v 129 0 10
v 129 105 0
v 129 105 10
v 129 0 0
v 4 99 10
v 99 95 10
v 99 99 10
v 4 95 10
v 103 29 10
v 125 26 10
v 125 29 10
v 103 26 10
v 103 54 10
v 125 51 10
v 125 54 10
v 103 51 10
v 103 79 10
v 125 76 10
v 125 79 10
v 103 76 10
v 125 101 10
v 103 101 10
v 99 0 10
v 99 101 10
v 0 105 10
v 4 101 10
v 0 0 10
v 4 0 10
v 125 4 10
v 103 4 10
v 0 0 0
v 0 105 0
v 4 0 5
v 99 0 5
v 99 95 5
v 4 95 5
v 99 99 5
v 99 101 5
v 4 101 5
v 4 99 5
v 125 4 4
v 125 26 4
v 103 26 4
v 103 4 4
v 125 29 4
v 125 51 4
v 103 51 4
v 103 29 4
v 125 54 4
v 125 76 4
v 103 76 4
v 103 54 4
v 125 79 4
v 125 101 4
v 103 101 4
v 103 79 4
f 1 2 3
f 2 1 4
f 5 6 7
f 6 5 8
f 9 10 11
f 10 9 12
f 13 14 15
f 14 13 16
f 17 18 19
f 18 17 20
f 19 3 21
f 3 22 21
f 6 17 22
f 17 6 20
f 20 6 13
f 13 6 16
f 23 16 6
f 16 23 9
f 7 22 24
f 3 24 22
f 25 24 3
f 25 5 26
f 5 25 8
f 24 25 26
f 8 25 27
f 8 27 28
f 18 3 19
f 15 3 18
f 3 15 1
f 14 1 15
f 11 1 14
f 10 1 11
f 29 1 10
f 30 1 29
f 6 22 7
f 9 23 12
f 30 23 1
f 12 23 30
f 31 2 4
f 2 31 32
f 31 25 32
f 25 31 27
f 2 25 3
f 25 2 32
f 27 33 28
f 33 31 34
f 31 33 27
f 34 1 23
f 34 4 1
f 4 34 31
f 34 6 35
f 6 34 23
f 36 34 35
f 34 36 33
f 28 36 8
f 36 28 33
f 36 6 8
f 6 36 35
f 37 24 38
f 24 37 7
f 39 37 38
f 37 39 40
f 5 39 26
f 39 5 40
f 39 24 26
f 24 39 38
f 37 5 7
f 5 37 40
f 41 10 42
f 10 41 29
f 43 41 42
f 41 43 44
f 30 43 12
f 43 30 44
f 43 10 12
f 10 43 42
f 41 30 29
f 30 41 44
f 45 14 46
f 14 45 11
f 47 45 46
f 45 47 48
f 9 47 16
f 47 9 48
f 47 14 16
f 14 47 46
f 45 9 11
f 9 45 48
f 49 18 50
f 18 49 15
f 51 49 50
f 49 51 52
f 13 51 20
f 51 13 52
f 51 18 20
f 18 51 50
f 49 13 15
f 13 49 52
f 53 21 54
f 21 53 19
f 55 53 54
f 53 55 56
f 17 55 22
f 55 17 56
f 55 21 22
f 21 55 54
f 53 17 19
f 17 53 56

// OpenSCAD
module base(sx, sy, sz) {
    cube(size=[sx,sy,sz], center=false);
}

module recess(px, py, pz, sx, sy, sz) {
    translate([px, py, pz])
        cube(size=[sx,sy,sz], center=false);
}

module dashboard() {
    difference() {
        base(129, 105, 10);
        recess(  4, -1, 5,  95, 96, 10);
        recess(  4, 99, 5,  95,  2, 10);
        recess(103,  4, 4,  22, 22, 10);
        recess(103, 29, 4,  22, 22, 10);
        recess(103, 54, 4,  22, 22, 10);
        recess(103, 79, 4,  22, 22, 10);
    }
}

dashboard();
